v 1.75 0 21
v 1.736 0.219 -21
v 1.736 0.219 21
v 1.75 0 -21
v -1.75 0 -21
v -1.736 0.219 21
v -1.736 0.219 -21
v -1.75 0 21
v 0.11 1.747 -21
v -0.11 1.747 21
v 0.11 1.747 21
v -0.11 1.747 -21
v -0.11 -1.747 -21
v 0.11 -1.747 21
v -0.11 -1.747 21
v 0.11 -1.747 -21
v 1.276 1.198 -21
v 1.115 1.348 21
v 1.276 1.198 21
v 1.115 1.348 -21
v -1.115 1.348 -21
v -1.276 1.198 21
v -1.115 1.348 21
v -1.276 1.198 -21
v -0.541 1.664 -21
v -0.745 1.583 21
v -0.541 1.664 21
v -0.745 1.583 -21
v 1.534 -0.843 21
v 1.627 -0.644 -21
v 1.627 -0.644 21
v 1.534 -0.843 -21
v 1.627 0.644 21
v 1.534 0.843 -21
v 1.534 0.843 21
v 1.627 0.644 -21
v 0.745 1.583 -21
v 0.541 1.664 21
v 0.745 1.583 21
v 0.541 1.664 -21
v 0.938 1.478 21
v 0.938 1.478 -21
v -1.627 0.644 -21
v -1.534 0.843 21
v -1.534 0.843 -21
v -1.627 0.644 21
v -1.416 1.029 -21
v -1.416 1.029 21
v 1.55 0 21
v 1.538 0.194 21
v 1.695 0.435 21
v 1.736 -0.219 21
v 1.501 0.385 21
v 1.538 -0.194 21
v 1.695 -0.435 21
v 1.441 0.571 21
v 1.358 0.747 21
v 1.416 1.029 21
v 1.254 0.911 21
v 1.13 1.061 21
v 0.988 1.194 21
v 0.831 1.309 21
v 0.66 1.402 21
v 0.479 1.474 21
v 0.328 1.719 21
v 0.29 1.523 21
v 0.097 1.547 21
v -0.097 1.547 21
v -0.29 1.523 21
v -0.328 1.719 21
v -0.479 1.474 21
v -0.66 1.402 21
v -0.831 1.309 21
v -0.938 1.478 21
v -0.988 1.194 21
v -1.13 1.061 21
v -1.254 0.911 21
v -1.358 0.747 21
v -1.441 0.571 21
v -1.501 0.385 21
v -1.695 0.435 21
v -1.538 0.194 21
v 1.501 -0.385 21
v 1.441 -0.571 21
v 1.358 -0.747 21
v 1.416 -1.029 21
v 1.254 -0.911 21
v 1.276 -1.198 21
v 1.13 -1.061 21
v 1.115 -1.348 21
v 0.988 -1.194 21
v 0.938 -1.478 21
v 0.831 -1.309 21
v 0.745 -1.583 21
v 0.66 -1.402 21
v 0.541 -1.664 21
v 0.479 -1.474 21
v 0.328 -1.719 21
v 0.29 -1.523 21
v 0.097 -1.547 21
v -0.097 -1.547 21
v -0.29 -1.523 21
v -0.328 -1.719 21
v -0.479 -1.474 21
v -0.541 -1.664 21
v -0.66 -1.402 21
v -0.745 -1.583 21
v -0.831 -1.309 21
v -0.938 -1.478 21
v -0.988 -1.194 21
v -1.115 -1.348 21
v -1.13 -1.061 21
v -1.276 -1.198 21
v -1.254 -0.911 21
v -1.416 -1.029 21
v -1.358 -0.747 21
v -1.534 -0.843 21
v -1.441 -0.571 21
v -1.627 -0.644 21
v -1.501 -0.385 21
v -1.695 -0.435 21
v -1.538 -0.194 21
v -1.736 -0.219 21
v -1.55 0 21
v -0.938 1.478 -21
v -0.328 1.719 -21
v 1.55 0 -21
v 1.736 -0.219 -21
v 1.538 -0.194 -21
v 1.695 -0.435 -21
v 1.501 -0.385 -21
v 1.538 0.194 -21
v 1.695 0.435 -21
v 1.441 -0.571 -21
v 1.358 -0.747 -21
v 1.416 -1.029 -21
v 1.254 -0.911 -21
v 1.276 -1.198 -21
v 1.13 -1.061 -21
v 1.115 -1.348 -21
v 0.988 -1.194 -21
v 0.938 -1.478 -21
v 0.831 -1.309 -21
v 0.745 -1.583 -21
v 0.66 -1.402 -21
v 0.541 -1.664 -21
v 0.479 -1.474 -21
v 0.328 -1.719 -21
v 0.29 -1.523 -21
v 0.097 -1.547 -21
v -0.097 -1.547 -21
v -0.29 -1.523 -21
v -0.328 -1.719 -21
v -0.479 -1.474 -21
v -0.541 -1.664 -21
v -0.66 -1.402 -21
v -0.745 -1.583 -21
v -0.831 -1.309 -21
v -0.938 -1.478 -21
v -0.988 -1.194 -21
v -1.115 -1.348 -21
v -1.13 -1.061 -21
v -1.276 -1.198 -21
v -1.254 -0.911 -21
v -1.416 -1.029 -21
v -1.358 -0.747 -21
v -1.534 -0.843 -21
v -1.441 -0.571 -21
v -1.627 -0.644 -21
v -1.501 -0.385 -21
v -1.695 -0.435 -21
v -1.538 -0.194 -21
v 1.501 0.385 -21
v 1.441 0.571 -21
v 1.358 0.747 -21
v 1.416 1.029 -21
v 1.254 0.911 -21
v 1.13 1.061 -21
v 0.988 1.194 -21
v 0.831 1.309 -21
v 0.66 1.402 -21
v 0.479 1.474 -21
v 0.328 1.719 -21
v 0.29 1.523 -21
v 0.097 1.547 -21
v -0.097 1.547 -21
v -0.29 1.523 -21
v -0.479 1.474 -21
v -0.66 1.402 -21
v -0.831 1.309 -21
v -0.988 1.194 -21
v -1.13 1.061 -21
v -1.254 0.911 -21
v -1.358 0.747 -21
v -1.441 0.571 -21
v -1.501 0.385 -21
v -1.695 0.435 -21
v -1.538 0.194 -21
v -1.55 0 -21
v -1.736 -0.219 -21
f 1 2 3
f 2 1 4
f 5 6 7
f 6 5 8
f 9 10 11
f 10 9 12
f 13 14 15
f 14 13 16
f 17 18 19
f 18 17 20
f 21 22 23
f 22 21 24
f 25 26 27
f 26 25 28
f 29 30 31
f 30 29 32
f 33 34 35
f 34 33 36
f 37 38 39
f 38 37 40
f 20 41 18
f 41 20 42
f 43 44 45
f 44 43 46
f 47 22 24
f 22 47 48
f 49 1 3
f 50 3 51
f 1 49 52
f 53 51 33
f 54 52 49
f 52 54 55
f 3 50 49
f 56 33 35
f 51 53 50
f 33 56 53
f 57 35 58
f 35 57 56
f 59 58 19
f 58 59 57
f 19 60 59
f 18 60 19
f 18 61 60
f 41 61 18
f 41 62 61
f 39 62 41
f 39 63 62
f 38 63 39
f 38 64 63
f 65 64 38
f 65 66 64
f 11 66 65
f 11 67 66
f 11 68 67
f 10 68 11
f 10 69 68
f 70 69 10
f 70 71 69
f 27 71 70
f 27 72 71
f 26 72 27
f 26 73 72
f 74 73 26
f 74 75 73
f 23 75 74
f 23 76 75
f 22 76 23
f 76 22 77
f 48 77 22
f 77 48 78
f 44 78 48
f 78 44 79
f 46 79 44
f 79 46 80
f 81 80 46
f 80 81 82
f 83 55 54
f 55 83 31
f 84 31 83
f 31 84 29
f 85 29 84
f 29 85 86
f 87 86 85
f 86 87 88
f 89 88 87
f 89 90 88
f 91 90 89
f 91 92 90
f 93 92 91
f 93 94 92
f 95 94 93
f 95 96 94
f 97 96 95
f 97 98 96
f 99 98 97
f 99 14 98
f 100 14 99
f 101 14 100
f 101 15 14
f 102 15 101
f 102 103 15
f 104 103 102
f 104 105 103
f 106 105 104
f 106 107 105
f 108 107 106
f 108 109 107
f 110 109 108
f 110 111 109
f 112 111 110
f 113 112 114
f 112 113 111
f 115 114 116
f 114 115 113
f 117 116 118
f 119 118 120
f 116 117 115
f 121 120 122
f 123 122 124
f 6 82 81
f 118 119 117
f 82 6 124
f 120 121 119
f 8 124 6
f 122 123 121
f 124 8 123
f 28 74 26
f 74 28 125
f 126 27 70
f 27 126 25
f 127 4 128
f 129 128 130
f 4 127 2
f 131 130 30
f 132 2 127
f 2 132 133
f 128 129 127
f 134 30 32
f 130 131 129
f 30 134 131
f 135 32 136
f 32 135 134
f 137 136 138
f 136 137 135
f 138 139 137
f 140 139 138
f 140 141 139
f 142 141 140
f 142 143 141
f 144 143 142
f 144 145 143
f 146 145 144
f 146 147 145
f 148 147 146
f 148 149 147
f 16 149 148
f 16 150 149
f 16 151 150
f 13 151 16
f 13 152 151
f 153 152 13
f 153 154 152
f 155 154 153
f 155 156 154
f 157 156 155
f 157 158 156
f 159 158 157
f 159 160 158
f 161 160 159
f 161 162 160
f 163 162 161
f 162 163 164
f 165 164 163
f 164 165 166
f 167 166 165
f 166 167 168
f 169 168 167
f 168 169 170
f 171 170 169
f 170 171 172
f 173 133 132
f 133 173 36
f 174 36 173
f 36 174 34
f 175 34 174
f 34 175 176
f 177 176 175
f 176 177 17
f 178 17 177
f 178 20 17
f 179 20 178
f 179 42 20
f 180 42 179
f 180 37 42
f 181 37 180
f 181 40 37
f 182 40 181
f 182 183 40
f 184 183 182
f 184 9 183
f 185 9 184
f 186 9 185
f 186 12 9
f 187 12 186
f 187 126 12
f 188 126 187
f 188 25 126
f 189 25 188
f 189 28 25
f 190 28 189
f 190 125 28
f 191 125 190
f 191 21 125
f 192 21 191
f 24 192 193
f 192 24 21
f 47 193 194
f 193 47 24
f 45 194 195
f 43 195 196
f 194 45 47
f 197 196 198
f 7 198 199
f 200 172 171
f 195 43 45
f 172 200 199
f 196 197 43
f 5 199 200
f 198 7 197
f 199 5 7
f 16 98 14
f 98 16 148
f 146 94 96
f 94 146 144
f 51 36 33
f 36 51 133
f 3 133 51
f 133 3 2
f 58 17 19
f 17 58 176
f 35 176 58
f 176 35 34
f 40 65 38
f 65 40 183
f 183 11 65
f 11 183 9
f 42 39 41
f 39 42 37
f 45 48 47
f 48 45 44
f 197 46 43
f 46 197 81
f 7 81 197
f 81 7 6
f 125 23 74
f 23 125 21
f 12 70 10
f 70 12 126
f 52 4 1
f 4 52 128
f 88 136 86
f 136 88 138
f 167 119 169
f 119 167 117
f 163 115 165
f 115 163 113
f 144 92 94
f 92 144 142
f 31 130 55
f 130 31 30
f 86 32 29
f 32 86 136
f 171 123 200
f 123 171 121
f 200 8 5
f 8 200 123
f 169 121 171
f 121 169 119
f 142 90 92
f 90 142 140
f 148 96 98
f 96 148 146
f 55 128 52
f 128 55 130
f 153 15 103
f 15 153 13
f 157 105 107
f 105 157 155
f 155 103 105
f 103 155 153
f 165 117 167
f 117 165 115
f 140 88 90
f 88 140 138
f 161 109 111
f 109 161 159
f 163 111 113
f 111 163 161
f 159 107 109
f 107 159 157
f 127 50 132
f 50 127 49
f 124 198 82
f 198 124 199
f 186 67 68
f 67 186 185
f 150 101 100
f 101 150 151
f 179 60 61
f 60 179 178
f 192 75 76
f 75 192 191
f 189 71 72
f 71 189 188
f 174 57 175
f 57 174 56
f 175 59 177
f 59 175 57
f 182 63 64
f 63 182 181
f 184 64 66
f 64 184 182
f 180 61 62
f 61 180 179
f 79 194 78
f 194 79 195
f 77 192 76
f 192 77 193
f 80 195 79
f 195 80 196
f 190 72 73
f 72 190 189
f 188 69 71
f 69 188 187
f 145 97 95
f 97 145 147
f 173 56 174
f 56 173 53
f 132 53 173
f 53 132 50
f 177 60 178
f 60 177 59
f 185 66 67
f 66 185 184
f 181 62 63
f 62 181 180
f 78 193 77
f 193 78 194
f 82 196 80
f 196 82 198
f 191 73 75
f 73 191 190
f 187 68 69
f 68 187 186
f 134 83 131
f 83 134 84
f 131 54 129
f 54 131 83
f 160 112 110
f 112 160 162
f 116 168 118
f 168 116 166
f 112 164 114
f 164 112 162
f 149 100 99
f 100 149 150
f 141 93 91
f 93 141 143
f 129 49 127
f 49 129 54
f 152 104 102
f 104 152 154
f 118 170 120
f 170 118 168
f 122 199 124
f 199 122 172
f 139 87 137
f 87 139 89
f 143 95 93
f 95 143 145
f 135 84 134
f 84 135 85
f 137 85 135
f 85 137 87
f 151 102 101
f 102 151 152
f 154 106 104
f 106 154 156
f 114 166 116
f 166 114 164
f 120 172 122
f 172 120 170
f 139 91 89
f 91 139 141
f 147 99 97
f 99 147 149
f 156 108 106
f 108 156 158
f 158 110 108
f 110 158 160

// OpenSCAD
$fn = 50;


difference() {
	union() {
		translate(v = [0, 0, -21.0000000000]) {
			cylinder(h = 42, r = 1.7500000000);
		}
	}
	union() {
		translate(v = [0, 0, -100.0000000000]) {
			cylinder(h = 200, r = 1.5500000000);
		}
	}
}
